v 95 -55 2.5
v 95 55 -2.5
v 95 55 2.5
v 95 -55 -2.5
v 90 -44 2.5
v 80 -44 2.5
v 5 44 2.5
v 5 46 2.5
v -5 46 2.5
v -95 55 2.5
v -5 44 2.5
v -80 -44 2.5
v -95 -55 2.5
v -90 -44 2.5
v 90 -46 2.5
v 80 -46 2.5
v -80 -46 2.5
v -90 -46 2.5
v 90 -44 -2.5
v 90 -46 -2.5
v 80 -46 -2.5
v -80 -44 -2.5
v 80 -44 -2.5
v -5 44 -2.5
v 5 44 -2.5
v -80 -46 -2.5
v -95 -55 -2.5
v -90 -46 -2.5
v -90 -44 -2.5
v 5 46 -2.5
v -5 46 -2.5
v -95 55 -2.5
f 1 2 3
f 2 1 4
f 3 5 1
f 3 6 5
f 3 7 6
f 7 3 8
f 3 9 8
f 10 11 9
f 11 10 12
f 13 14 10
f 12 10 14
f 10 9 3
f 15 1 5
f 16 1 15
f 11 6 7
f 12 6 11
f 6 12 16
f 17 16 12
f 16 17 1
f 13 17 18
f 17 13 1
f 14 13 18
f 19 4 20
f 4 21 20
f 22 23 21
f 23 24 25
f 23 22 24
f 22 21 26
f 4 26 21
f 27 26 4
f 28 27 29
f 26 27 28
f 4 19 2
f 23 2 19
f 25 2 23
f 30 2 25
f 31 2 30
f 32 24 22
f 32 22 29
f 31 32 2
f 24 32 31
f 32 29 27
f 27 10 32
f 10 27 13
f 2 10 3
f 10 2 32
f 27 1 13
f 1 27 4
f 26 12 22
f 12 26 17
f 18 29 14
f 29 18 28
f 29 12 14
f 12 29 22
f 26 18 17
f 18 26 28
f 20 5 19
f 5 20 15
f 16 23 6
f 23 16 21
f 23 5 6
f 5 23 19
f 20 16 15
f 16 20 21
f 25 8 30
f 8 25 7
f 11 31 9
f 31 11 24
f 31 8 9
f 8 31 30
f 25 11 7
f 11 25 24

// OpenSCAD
// ========================================
// a 190 x 110 x 5 mm plate with three 10 x 2 mm slots
// NeuroCAD canonical IR; dimensions are millimetres
// ========================================
$fn = 48;

difference() {
  cube(size=[190, 110, 5], center=true);
  translate([-85, -45, 0]) {
    cube(size=[10, 2, 7], center=true);
  }
  translate([85, -45, 0]) {
    cube(size=[10, 2, 7], center=true);
  }
  translate([0, 45, 0]) {
    cube(size=[10, 2, 7], center=true);
  }
}
